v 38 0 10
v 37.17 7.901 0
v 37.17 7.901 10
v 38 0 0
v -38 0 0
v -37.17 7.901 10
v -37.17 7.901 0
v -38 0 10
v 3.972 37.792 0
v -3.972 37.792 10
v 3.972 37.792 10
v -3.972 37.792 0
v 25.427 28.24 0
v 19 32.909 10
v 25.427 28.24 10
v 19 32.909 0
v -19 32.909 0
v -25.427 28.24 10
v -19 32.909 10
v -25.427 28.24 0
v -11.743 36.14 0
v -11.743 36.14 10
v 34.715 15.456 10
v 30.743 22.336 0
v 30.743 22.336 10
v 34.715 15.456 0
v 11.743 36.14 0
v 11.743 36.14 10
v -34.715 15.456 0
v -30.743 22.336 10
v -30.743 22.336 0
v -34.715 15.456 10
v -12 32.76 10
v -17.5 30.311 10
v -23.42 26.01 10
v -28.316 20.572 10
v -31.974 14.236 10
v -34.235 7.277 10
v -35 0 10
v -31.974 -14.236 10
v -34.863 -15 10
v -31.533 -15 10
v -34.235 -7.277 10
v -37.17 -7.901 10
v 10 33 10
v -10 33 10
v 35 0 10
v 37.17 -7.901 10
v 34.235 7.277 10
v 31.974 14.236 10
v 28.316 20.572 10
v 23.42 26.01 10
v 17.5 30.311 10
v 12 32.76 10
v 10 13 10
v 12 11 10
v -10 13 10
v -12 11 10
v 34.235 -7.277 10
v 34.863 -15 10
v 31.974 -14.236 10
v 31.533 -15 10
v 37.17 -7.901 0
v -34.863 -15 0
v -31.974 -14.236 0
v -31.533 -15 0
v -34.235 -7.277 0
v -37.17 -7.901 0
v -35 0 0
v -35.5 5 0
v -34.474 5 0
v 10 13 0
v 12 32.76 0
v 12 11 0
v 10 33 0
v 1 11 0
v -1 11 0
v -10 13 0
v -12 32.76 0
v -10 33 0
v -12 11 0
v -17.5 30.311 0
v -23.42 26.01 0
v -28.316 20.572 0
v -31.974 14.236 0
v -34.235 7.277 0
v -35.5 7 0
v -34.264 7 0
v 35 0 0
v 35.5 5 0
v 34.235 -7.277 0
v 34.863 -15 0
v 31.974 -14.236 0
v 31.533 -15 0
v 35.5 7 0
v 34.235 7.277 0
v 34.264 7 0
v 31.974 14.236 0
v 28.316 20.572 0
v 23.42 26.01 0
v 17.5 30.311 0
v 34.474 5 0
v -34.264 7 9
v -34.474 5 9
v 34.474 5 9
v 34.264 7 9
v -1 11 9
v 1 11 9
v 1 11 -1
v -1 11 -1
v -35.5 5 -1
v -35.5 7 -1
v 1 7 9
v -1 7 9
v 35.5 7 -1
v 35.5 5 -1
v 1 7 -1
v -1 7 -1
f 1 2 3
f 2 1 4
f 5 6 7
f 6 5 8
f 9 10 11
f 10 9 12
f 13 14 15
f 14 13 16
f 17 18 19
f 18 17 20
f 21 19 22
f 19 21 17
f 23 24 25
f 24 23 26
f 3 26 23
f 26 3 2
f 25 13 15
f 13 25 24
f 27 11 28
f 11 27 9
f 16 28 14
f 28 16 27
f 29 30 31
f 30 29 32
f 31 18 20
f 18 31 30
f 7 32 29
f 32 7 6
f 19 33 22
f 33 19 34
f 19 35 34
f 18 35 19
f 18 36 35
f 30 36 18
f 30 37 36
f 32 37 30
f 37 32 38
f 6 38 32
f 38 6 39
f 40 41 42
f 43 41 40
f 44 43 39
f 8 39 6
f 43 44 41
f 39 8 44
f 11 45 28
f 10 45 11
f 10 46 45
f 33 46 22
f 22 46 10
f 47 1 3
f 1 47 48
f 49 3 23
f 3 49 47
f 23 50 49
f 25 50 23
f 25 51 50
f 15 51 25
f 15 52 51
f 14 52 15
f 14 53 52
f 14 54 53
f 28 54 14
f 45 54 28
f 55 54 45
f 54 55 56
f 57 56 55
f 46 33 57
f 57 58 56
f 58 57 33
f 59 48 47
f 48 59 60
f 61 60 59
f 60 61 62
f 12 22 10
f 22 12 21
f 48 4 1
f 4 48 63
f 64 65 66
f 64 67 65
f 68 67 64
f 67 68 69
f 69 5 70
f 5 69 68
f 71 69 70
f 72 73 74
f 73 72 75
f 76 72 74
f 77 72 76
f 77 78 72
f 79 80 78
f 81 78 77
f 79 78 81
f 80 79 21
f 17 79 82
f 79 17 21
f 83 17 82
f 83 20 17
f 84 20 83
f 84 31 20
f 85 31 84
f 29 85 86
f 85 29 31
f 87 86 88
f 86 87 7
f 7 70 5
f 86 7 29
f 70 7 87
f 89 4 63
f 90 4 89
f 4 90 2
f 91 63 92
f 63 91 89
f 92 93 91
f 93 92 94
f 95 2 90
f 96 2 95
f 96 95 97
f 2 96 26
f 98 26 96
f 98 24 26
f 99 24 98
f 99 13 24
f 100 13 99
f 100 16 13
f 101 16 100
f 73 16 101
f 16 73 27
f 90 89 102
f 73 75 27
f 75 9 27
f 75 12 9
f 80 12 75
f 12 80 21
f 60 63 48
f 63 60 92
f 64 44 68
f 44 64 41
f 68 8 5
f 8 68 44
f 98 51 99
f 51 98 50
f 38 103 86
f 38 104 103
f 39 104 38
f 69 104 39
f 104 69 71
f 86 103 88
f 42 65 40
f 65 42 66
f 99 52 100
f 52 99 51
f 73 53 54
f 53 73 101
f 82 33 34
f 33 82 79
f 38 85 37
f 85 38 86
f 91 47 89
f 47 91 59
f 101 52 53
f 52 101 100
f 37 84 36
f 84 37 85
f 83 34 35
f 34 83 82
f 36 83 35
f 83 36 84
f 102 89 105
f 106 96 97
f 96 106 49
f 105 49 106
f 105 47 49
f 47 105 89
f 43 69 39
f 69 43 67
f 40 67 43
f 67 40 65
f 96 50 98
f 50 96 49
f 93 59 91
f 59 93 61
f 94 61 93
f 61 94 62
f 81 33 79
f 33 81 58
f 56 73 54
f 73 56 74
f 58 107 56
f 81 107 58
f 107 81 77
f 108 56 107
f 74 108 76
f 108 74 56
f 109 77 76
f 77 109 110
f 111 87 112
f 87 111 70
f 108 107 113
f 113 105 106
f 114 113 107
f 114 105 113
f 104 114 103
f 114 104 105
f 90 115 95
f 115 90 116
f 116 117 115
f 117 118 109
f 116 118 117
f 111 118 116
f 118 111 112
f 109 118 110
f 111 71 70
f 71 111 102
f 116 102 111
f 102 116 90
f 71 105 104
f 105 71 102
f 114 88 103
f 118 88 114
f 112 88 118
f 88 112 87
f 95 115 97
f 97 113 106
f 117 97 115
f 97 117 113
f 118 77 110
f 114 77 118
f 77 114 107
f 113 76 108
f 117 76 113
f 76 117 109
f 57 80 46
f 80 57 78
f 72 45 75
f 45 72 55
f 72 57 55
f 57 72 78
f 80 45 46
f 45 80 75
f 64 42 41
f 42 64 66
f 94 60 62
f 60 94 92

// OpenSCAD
difference(){
    union(){
        difference(){
            cylinder(r=38, h=10);
            translate([0,0,-1])cylinder(r=35, h=30);
        }
        translate([-12,11,0])cube([24,24,10]);
        translate([0,6,4])cube([71,2,10], center=true);
        translate([0,8,4])cube([2,6,10], center=true);
    };
    translate([-10,13,-1])cube([20,20,60]);
    translate([0,-40,-1])cube([70,50,60], center=true);

};
